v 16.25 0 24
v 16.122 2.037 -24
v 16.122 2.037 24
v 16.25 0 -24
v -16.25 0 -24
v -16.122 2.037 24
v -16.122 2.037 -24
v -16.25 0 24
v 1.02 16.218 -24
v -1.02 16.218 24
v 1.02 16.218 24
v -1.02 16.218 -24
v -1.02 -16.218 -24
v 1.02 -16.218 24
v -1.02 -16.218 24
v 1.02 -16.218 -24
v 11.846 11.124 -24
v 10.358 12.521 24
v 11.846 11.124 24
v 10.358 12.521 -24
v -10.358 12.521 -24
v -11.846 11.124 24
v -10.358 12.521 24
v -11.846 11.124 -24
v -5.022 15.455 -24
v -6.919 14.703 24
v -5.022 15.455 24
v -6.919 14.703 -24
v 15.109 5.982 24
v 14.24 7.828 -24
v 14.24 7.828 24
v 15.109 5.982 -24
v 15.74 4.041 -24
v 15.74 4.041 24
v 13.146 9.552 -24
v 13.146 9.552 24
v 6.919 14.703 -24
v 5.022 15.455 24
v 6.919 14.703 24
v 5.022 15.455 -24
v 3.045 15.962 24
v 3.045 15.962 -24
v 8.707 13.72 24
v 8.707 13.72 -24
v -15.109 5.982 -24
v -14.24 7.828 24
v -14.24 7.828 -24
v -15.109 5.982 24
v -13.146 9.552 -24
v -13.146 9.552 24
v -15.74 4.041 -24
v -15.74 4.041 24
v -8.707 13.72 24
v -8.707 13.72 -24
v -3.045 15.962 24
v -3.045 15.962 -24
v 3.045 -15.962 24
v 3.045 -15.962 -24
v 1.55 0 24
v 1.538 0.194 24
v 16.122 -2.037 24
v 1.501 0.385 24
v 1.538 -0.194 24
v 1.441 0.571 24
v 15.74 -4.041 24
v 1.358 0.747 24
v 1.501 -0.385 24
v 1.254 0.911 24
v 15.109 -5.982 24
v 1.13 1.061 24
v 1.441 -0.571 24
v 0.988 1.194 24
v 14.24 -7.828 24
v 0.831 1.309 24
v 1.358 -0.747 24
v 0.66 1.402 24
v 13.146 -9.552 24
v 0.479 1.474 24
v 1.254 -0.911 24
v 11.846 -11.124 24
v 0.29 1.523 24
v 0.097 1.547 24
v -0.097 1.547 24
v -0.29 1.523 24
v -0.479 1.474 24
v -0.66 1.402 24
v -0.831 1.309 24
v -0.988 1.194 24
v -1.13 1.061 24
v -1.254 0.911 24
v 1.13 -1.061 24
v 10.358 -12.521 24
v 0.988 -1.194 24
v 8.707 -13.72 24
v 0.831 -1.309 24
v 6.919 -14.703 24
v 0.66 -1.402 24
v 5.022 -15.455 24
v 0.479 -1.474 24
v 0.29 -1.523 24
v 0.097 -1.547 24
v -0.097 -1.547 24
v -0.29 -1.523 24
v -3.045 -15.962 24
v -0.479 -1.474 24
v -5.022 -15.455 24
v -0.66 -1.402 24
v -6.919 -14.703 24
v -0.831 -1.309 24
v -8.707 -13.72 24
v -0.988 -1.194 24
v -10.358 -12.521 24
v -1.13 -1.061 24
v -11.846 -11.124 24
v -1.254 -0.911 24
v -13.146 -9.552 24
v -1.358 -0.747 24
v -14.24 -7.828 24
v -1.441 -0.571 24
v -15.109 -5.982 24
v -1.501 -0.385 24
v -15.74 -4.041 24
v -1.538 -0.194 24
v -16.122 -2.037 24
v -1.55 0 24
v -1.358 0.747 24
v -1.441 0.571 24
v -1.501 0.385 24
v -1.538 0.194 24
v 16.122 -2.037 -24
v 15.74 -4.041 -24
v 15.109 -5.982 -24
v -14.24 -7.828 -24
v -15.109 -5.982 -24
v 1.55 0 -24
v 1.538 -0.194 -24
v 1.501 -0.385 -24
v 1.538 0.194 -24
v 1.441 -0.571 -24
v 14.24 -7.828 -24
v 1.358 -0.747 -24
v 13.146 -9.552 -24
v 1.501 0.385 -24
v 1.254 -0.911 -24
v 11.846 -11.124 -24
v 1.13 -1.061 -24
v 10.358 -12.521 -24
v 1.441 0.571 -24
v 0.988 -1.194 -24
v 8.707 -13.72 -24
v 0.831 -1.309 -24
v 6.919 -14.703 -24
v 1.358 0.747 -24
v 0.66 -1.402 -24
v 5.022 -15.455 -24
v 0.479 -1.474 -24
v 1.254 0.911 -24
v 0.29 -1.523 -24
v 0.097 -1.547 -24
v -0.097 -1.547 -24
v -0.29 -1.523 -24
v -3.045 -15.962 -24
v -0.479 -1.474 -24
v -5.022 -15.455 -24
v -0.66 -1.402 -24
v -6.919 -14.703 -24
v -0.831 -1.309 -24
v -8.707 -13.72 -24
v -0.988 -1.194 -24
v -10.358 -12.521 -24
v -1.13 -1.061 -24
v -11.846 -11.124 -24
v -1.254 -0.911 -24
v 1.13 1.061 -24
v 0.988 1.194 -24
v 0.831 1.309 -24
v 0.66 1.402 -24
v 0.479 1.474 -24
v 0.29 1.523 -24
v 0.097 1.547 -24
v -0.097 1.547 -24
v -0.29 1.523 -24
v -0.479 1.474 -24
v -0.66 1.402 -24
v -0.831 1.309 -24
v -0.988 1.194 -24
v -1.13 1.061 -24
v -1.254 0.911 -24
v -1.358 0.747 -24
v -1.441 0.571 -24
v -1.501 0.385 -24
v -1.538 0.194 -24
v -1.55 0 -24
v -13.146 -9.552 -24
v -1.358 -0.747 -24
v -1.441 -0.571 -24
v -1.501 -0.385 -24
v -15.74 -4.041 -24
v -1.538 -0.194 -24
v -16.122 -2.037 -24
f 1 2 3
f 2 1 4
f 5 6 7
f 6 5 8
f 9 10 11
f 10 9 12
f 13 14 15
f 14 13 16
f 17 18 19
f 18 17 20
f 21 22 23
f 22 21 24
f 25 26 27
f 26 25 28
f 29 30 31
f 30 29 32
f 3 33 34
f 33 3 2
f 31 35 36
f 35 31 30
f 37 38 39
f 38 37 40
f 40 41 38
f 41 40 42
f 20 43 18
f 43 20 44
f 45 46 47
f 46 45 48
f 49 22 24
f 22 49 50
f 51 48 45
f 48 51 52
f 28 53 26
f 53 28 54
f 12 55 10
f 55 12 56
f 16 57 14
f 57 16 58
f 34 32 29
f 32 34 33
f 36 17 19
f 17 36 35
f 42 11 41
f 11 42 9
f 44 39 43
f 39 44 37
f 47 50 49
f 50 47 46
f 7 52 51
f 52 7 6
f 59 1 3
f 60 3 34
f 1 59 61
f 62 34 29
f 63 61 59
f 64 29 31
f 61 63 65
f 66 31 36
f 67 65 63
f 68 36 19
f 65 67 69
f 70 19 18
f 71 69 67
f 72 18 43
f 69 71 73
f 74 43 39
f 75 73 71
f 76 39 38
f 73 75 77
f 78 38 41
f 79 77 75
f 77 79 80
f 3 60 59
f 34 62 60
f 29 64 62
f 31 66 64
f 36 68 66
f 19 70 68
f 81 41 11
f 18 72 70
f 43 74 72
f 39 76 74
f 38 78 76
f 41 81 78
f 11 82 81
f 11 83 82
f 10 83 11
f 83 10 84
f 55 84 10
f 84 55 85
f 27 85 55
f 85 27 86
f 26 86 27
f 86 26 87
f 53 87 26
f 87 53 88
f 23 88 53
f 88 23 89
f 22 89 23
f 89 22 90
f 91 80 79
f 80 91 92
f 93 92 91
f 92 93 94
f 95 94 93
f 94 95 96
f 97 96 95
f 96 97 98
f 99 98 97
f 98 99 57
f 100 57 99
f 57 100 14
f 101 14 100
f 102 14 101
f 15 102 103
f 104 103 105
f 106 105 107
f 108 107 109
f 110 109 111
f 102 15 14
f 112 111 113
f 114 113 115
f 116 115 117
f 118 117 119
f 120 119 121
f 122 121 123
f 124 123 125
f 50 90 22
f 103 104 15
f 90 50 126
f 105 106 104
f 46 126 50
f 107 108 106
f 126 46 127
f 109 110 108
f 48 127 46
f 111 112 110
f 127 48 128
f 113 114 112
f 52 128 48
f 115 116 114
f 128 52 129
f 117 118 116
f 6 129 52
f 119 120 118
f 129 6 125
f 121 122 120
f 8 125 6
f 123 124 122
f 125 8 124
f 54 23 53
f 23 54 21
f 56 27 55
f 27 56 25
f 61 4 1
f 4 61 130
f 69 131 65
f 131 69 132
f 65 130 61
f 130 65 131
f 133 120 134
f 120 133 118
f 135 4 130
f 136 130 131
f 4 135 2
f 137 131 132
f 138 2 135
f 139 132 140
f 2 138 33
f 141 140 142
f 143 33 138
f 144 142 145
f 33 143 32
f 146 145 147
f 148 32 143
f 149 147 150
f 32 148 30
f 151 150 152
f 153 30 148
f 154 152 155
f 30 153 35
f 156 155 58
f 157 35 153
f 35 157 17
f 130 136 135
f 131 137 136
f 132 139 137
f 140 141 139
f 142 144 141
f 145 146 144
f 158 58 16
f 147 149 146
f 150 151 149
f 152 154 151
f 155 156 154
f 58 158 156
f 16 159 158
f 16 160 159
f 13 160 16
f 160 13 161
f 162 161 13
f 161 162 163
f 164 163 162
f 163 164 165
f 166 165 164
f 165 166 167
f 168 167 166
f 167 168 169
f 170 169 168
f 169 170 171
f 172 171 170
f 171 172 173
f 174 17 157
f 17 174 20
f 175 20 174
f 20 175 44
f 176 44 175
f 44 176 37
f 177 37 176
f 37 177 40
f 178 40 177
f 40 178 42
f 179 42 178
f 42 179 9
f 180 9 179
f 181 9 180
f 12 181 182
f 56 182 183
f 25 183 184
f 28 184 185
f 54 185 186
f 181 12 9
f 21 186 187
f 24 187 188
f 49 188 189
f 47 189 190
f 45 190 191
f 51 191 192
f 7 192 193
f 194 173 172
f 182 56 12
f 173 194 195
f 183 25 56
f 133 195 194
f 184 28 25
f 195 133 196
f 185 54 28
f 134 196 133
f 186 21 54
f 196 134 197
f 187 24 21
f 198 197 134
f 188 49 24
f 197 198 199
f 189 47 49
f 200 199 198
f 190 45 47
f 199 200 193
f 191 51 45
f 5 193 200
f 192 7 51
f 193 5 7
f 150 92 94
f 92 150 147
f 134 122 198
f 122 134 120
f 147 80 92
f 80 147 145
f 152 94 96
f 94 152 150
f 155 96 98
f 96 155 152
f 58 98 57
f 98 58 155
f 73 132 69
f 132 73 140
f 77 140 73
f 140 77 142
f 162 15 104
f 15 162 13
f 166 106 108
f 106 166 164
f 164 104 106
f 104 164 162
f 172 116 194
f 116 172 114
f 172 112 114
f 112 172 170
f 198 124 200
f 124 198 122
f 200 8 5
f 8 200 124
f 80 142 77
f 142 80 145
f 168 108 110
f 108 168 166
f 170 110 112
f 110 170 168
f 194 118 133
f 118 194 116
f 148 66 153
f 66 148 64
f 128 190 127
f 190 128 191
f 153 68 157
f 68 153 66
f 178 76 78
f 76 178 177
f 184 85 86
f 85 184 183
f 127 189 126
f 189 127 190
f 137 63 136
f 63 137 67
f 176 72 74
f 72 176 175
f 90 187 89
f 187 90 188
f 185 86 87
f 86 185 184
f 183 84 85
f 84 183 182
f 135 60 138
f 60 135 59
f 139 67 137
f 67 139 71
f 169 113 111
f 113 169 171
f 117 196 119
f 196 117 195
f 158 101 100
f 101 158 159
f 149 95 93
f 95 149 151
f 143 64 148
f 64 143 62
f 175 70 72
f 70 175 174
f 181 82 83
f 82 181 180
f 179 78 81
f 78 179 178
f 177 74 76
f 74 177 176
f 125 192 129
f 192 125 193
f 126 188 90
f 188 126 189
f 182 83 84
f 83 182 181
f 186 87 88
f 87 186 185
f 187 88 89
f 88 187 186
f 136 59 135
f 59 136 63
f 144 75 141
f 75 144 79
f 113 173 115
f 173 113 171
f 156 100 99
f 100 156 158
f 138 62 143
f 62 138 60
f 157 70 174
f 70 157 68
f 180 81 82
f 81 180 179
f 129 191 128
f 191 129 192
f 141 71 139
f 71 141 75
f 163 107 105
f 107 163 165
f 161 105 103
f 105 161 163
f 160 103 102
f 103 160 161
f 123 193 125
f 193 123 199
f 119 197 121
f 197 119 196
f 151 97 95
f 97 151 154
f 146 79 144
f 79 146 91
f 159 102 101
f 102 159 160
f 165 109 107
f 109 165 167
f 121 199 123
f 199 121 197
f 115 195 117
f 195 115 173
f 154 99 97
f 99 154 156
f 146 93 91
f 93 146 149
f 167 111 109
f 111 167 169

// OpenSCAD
$fn = 50;


difference() {
	union() {
		translate(v = [0, 0, -24.0000000000]) {
			cylinder(h = 48, r = 16.2500000000);
		}
	}
	union() {
		translate(v = [0, 0, -100.0000000000]) {
			cylinder(h = 200, r = 1.5500000000);
		}
	}
}
